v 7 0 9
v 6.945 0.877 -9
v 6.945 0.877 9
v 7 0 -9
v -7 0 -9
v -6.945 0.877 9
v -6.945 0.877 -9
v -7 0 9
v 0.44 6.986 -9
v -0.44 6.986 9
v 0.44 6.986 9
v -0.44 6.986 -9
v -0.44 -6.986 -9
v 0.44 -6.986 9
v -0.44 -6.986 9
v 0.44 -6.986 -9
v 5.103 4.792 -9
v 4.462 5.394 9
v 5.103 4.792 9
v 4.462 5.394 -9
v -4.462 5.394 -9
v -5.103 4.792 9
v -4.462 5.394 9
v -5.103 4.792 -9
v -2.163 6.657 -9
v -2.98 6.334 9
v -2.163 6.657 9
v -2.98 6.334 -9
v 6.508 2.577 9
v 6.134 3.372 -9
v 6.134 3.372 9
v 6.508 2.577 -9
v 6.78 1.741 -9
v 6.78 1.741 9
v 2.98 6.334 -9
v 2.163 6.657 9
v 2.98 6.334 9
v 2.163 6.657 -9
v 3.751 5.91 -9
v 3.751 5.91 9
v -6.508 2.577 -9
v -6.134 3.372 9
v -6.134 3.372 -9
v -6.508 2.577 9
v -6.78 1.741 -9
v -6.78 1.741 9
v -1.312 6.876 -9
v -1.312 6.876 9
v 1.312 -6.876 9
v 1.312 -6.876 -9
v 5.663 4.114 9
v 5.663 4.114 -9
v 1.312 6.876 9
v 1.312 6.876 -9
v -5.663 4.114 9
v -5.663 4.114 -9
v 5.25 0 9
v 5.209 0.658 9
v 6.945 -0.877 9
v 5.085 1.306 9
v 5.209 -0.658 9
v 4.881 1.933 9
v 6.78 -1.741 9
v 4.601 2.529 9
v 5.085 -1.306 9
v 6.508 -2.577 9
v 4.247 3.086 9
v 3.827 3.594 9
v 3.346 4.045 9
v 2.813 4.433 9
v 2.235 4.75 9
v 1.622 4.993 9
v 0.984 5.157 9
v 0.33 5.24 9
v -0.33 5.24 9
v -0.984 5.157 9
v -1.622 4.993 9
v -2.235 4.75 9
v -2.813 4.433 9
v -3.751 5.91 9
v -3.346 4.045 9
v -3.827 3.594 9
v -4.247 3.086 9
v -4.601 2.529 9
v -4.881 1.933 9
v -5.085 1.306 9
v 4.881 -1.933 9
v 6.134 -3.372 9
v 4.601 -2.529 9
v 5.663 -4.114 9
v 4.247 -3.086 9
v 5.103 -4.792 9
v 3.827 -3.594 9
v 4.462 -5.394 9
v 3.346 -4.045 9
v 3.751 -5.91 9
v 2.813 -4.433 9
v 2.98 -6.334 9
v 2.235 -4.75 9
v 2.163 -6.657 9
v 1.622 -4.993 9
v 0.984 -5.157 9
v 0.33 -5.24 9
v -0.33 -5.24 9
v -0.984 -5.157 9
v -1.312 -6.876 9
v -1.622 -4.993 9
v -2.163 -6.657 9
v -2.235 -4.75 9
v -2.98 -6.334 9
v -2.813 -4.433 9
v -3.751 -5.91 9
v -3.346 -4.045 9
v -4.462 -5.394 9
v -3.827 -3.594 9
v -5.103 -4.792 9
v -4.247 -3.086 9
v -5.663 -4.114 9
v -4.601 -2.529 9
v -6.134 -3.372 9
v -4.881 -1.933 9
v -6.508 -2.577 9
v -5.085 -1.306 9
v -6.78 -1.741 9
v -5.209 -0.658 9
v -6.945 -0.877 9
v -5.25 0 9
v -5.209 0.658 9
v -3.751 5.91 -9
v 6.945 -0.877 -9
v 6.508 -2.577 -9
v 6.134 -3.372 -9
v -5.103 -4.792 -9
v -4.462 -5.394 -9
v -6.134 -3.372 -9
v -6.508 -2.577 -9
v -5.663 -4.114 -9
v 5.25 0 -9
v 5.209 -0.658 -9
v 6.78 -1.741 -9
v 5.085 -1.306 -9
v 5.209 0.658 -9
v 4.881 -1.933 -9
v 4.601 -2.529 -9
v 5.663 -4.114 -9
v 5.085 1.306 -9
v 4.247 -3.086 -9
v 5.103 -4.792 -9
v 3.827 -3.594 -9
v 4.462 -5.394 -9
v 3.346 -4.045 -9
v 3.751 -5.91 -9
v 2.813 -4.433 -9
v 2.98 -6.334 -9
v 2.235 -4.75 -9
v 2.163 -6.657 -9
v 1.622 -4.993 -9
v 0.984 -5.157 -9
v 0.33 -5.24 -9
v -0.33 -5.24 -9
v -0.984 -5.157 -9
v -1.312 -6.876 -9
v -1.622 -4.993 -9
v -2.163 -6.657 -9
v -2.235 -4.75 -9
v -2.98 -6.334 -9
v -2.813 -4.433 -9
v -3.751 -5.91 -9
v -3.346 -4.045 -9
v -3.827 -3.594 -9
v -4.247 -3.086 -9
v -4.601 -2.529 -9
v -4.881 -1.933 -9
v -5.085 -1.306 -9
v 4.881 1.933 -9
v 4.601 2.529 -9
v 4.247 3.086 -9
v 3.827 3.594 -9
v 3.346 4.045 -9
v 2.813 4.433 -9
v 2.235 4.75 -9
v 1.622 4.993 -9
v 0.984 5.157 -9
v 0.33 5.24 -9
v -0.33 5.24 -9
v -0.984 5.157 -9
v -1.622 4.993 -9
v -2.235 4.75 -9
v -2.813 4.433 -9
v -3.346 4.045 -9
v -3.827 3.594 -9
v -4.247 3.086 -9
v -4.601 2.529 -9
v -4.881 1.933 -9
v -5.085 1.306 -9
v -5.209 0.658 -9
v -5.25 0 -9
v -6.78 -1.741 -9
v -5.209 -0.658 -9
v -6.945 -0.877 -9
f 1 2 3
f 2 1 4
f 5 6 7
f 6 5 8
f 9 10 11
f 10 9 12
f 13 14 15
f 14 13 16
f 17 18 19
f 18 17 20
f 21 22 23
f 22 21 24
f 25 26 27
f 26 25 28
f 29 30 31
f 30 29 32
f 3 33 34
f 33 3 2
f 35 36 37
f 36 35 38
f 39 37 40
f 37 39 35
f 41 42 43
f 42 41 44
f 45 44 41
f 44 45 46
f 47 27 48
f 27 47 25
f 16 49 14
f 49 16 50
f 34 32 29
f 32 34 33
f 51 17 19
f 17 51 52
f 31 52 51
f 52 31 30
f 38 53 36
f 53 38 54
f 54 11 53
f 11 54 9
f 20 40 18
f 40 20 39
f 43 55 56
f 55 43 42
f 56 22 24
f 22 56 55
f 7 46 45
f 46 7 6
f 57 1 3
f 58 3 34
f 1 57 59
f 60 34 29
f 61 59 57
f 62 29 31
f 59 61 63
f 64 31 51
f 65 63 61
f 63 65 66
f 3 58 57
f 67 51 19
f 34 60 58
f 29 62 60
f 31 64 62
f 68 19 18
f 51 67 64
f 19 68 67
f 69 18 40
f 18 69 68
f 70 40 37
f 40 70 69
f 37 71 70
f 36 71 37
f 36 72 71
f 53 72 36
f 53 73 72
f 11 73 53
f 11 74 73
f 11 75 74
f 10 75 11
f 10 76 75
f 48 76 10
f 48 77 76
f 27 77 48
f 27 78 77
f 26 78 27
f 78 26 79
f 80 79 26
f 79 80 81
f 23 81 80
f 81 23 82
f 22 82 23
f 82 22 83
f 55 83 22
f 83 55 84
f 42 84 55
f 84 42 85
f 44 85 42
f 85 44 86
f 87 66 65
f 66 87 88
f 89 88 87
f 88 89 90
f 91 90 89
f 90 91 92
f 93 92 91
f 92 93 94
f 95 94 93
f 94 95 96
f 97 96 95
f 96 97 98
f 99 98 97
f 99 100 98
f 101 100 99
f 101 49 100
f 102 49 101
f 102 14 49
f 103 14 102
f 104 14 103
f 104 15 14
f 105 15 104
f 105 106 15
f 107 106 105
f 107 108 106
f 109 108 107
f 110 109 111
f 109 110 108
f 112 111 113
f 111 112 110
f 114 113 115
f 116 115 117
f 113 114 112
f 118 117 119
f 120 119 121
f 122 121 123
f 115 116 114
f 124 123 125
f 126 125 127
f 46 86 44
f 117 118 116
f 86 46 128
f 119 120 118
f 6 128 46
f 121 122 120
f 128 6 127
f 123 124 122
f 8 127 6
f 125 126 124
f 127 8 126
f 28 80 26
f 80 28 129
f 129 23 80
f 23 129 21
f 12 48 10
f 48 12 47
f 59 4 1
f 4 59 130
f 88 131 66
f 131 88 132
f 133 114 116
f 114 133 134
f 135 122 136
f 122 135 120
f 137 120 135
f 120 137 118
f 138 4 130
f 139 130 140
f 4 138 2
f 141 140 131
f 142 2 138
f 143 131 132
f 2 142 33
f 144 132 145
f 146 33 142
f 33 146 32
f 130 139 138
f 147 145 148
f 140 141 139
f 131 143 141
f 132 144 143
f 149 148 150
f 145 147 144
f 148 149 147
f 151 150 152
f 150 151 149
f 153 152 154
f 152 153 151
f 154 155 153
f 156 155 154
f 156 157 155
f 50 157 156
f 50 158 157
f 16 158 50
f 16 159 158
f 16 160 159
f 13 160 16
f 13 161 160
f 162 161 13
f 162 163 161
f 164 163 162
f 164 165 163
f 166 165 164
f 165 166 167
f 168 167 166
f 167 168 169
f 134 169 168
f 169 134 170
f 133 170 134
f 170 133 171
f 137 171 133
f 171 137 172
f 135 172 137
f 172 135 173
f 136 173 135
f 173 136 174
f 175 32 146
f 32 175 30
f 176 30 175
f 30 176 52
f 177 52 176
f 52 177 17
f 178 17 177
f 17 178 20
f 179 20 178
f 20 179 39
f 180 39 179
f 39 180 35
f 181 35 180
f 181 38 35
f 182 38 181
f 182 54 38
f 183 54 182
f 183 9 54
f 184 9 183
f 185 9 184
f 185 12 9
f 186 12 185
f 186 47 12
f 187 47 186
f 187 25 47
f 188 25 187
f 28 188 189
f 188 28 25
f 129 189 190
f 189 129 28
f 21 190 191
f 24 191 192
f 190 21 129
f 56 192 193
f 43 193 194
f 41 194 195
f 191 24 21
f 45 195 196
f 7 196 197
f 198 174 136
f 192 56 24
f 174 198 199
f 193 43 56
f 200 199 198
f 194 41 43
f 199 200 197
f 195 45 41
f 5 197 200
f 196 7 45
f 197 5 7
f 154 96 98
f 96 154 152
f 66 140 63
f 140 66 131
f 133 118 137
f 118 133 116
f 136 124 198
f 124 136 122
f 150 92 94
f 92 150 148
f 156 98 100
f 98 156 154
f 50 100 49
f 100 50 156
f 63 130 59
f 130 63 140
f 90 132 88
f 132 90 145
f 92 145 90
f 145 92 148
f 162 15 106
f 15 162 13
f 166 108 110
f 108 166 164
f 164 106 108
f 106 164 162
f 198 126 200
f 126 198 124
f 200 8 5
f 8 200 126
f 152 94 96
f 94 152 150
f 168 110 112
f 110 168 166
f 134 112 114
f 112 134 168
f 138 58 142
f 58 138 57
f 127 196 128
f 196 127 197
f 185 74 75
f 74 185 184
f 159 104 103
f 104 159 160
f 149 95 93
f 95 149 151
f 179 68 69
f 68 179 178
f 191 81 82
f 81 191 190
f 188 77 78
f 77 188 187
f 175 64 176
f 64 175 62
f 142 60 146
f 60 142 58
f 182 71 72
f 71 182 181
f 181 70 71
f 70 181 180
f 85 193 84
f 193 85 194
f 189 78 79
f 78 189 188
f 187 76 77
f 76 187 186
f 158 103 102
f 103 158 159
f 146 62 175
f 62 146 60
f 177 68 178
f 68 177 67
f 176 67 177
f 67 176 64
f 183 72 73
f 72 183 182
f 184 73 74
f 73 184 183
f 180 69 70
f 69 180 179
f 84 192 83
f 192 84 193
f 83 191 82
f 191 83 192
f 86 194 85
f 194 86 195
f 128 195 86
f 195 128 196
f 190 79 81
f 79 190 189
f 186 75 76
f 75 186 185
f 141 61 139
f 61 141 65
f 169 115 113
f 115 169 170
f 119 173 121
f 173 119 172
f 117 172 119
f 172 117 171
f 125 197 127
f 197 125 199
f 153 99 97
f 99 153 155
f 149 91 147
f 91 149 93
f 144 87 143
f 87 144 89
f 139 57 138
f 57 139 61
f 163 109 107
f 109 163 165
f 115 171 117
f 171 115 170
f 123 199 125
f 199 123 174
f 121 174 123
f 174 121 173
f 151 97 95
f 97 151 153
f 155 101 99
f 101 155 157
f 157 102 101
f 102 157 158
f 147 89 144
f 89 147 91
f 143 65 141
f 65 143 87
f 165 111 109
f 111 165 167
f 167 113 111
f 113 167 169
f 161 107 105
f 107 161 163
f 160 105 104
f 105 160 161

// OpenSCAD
$fn = 50;


difference() {
	union() {
		translate(v = [0, 0, -9.0000000000]) {
			cylinder(h = 18, r = 7.0000000000);
		}
	}
	union() {
		translate(v = [0, 0, -100.0000000000]) {
			cylinder(h = 200, r = 5.2500000000);
		}
	}
}
